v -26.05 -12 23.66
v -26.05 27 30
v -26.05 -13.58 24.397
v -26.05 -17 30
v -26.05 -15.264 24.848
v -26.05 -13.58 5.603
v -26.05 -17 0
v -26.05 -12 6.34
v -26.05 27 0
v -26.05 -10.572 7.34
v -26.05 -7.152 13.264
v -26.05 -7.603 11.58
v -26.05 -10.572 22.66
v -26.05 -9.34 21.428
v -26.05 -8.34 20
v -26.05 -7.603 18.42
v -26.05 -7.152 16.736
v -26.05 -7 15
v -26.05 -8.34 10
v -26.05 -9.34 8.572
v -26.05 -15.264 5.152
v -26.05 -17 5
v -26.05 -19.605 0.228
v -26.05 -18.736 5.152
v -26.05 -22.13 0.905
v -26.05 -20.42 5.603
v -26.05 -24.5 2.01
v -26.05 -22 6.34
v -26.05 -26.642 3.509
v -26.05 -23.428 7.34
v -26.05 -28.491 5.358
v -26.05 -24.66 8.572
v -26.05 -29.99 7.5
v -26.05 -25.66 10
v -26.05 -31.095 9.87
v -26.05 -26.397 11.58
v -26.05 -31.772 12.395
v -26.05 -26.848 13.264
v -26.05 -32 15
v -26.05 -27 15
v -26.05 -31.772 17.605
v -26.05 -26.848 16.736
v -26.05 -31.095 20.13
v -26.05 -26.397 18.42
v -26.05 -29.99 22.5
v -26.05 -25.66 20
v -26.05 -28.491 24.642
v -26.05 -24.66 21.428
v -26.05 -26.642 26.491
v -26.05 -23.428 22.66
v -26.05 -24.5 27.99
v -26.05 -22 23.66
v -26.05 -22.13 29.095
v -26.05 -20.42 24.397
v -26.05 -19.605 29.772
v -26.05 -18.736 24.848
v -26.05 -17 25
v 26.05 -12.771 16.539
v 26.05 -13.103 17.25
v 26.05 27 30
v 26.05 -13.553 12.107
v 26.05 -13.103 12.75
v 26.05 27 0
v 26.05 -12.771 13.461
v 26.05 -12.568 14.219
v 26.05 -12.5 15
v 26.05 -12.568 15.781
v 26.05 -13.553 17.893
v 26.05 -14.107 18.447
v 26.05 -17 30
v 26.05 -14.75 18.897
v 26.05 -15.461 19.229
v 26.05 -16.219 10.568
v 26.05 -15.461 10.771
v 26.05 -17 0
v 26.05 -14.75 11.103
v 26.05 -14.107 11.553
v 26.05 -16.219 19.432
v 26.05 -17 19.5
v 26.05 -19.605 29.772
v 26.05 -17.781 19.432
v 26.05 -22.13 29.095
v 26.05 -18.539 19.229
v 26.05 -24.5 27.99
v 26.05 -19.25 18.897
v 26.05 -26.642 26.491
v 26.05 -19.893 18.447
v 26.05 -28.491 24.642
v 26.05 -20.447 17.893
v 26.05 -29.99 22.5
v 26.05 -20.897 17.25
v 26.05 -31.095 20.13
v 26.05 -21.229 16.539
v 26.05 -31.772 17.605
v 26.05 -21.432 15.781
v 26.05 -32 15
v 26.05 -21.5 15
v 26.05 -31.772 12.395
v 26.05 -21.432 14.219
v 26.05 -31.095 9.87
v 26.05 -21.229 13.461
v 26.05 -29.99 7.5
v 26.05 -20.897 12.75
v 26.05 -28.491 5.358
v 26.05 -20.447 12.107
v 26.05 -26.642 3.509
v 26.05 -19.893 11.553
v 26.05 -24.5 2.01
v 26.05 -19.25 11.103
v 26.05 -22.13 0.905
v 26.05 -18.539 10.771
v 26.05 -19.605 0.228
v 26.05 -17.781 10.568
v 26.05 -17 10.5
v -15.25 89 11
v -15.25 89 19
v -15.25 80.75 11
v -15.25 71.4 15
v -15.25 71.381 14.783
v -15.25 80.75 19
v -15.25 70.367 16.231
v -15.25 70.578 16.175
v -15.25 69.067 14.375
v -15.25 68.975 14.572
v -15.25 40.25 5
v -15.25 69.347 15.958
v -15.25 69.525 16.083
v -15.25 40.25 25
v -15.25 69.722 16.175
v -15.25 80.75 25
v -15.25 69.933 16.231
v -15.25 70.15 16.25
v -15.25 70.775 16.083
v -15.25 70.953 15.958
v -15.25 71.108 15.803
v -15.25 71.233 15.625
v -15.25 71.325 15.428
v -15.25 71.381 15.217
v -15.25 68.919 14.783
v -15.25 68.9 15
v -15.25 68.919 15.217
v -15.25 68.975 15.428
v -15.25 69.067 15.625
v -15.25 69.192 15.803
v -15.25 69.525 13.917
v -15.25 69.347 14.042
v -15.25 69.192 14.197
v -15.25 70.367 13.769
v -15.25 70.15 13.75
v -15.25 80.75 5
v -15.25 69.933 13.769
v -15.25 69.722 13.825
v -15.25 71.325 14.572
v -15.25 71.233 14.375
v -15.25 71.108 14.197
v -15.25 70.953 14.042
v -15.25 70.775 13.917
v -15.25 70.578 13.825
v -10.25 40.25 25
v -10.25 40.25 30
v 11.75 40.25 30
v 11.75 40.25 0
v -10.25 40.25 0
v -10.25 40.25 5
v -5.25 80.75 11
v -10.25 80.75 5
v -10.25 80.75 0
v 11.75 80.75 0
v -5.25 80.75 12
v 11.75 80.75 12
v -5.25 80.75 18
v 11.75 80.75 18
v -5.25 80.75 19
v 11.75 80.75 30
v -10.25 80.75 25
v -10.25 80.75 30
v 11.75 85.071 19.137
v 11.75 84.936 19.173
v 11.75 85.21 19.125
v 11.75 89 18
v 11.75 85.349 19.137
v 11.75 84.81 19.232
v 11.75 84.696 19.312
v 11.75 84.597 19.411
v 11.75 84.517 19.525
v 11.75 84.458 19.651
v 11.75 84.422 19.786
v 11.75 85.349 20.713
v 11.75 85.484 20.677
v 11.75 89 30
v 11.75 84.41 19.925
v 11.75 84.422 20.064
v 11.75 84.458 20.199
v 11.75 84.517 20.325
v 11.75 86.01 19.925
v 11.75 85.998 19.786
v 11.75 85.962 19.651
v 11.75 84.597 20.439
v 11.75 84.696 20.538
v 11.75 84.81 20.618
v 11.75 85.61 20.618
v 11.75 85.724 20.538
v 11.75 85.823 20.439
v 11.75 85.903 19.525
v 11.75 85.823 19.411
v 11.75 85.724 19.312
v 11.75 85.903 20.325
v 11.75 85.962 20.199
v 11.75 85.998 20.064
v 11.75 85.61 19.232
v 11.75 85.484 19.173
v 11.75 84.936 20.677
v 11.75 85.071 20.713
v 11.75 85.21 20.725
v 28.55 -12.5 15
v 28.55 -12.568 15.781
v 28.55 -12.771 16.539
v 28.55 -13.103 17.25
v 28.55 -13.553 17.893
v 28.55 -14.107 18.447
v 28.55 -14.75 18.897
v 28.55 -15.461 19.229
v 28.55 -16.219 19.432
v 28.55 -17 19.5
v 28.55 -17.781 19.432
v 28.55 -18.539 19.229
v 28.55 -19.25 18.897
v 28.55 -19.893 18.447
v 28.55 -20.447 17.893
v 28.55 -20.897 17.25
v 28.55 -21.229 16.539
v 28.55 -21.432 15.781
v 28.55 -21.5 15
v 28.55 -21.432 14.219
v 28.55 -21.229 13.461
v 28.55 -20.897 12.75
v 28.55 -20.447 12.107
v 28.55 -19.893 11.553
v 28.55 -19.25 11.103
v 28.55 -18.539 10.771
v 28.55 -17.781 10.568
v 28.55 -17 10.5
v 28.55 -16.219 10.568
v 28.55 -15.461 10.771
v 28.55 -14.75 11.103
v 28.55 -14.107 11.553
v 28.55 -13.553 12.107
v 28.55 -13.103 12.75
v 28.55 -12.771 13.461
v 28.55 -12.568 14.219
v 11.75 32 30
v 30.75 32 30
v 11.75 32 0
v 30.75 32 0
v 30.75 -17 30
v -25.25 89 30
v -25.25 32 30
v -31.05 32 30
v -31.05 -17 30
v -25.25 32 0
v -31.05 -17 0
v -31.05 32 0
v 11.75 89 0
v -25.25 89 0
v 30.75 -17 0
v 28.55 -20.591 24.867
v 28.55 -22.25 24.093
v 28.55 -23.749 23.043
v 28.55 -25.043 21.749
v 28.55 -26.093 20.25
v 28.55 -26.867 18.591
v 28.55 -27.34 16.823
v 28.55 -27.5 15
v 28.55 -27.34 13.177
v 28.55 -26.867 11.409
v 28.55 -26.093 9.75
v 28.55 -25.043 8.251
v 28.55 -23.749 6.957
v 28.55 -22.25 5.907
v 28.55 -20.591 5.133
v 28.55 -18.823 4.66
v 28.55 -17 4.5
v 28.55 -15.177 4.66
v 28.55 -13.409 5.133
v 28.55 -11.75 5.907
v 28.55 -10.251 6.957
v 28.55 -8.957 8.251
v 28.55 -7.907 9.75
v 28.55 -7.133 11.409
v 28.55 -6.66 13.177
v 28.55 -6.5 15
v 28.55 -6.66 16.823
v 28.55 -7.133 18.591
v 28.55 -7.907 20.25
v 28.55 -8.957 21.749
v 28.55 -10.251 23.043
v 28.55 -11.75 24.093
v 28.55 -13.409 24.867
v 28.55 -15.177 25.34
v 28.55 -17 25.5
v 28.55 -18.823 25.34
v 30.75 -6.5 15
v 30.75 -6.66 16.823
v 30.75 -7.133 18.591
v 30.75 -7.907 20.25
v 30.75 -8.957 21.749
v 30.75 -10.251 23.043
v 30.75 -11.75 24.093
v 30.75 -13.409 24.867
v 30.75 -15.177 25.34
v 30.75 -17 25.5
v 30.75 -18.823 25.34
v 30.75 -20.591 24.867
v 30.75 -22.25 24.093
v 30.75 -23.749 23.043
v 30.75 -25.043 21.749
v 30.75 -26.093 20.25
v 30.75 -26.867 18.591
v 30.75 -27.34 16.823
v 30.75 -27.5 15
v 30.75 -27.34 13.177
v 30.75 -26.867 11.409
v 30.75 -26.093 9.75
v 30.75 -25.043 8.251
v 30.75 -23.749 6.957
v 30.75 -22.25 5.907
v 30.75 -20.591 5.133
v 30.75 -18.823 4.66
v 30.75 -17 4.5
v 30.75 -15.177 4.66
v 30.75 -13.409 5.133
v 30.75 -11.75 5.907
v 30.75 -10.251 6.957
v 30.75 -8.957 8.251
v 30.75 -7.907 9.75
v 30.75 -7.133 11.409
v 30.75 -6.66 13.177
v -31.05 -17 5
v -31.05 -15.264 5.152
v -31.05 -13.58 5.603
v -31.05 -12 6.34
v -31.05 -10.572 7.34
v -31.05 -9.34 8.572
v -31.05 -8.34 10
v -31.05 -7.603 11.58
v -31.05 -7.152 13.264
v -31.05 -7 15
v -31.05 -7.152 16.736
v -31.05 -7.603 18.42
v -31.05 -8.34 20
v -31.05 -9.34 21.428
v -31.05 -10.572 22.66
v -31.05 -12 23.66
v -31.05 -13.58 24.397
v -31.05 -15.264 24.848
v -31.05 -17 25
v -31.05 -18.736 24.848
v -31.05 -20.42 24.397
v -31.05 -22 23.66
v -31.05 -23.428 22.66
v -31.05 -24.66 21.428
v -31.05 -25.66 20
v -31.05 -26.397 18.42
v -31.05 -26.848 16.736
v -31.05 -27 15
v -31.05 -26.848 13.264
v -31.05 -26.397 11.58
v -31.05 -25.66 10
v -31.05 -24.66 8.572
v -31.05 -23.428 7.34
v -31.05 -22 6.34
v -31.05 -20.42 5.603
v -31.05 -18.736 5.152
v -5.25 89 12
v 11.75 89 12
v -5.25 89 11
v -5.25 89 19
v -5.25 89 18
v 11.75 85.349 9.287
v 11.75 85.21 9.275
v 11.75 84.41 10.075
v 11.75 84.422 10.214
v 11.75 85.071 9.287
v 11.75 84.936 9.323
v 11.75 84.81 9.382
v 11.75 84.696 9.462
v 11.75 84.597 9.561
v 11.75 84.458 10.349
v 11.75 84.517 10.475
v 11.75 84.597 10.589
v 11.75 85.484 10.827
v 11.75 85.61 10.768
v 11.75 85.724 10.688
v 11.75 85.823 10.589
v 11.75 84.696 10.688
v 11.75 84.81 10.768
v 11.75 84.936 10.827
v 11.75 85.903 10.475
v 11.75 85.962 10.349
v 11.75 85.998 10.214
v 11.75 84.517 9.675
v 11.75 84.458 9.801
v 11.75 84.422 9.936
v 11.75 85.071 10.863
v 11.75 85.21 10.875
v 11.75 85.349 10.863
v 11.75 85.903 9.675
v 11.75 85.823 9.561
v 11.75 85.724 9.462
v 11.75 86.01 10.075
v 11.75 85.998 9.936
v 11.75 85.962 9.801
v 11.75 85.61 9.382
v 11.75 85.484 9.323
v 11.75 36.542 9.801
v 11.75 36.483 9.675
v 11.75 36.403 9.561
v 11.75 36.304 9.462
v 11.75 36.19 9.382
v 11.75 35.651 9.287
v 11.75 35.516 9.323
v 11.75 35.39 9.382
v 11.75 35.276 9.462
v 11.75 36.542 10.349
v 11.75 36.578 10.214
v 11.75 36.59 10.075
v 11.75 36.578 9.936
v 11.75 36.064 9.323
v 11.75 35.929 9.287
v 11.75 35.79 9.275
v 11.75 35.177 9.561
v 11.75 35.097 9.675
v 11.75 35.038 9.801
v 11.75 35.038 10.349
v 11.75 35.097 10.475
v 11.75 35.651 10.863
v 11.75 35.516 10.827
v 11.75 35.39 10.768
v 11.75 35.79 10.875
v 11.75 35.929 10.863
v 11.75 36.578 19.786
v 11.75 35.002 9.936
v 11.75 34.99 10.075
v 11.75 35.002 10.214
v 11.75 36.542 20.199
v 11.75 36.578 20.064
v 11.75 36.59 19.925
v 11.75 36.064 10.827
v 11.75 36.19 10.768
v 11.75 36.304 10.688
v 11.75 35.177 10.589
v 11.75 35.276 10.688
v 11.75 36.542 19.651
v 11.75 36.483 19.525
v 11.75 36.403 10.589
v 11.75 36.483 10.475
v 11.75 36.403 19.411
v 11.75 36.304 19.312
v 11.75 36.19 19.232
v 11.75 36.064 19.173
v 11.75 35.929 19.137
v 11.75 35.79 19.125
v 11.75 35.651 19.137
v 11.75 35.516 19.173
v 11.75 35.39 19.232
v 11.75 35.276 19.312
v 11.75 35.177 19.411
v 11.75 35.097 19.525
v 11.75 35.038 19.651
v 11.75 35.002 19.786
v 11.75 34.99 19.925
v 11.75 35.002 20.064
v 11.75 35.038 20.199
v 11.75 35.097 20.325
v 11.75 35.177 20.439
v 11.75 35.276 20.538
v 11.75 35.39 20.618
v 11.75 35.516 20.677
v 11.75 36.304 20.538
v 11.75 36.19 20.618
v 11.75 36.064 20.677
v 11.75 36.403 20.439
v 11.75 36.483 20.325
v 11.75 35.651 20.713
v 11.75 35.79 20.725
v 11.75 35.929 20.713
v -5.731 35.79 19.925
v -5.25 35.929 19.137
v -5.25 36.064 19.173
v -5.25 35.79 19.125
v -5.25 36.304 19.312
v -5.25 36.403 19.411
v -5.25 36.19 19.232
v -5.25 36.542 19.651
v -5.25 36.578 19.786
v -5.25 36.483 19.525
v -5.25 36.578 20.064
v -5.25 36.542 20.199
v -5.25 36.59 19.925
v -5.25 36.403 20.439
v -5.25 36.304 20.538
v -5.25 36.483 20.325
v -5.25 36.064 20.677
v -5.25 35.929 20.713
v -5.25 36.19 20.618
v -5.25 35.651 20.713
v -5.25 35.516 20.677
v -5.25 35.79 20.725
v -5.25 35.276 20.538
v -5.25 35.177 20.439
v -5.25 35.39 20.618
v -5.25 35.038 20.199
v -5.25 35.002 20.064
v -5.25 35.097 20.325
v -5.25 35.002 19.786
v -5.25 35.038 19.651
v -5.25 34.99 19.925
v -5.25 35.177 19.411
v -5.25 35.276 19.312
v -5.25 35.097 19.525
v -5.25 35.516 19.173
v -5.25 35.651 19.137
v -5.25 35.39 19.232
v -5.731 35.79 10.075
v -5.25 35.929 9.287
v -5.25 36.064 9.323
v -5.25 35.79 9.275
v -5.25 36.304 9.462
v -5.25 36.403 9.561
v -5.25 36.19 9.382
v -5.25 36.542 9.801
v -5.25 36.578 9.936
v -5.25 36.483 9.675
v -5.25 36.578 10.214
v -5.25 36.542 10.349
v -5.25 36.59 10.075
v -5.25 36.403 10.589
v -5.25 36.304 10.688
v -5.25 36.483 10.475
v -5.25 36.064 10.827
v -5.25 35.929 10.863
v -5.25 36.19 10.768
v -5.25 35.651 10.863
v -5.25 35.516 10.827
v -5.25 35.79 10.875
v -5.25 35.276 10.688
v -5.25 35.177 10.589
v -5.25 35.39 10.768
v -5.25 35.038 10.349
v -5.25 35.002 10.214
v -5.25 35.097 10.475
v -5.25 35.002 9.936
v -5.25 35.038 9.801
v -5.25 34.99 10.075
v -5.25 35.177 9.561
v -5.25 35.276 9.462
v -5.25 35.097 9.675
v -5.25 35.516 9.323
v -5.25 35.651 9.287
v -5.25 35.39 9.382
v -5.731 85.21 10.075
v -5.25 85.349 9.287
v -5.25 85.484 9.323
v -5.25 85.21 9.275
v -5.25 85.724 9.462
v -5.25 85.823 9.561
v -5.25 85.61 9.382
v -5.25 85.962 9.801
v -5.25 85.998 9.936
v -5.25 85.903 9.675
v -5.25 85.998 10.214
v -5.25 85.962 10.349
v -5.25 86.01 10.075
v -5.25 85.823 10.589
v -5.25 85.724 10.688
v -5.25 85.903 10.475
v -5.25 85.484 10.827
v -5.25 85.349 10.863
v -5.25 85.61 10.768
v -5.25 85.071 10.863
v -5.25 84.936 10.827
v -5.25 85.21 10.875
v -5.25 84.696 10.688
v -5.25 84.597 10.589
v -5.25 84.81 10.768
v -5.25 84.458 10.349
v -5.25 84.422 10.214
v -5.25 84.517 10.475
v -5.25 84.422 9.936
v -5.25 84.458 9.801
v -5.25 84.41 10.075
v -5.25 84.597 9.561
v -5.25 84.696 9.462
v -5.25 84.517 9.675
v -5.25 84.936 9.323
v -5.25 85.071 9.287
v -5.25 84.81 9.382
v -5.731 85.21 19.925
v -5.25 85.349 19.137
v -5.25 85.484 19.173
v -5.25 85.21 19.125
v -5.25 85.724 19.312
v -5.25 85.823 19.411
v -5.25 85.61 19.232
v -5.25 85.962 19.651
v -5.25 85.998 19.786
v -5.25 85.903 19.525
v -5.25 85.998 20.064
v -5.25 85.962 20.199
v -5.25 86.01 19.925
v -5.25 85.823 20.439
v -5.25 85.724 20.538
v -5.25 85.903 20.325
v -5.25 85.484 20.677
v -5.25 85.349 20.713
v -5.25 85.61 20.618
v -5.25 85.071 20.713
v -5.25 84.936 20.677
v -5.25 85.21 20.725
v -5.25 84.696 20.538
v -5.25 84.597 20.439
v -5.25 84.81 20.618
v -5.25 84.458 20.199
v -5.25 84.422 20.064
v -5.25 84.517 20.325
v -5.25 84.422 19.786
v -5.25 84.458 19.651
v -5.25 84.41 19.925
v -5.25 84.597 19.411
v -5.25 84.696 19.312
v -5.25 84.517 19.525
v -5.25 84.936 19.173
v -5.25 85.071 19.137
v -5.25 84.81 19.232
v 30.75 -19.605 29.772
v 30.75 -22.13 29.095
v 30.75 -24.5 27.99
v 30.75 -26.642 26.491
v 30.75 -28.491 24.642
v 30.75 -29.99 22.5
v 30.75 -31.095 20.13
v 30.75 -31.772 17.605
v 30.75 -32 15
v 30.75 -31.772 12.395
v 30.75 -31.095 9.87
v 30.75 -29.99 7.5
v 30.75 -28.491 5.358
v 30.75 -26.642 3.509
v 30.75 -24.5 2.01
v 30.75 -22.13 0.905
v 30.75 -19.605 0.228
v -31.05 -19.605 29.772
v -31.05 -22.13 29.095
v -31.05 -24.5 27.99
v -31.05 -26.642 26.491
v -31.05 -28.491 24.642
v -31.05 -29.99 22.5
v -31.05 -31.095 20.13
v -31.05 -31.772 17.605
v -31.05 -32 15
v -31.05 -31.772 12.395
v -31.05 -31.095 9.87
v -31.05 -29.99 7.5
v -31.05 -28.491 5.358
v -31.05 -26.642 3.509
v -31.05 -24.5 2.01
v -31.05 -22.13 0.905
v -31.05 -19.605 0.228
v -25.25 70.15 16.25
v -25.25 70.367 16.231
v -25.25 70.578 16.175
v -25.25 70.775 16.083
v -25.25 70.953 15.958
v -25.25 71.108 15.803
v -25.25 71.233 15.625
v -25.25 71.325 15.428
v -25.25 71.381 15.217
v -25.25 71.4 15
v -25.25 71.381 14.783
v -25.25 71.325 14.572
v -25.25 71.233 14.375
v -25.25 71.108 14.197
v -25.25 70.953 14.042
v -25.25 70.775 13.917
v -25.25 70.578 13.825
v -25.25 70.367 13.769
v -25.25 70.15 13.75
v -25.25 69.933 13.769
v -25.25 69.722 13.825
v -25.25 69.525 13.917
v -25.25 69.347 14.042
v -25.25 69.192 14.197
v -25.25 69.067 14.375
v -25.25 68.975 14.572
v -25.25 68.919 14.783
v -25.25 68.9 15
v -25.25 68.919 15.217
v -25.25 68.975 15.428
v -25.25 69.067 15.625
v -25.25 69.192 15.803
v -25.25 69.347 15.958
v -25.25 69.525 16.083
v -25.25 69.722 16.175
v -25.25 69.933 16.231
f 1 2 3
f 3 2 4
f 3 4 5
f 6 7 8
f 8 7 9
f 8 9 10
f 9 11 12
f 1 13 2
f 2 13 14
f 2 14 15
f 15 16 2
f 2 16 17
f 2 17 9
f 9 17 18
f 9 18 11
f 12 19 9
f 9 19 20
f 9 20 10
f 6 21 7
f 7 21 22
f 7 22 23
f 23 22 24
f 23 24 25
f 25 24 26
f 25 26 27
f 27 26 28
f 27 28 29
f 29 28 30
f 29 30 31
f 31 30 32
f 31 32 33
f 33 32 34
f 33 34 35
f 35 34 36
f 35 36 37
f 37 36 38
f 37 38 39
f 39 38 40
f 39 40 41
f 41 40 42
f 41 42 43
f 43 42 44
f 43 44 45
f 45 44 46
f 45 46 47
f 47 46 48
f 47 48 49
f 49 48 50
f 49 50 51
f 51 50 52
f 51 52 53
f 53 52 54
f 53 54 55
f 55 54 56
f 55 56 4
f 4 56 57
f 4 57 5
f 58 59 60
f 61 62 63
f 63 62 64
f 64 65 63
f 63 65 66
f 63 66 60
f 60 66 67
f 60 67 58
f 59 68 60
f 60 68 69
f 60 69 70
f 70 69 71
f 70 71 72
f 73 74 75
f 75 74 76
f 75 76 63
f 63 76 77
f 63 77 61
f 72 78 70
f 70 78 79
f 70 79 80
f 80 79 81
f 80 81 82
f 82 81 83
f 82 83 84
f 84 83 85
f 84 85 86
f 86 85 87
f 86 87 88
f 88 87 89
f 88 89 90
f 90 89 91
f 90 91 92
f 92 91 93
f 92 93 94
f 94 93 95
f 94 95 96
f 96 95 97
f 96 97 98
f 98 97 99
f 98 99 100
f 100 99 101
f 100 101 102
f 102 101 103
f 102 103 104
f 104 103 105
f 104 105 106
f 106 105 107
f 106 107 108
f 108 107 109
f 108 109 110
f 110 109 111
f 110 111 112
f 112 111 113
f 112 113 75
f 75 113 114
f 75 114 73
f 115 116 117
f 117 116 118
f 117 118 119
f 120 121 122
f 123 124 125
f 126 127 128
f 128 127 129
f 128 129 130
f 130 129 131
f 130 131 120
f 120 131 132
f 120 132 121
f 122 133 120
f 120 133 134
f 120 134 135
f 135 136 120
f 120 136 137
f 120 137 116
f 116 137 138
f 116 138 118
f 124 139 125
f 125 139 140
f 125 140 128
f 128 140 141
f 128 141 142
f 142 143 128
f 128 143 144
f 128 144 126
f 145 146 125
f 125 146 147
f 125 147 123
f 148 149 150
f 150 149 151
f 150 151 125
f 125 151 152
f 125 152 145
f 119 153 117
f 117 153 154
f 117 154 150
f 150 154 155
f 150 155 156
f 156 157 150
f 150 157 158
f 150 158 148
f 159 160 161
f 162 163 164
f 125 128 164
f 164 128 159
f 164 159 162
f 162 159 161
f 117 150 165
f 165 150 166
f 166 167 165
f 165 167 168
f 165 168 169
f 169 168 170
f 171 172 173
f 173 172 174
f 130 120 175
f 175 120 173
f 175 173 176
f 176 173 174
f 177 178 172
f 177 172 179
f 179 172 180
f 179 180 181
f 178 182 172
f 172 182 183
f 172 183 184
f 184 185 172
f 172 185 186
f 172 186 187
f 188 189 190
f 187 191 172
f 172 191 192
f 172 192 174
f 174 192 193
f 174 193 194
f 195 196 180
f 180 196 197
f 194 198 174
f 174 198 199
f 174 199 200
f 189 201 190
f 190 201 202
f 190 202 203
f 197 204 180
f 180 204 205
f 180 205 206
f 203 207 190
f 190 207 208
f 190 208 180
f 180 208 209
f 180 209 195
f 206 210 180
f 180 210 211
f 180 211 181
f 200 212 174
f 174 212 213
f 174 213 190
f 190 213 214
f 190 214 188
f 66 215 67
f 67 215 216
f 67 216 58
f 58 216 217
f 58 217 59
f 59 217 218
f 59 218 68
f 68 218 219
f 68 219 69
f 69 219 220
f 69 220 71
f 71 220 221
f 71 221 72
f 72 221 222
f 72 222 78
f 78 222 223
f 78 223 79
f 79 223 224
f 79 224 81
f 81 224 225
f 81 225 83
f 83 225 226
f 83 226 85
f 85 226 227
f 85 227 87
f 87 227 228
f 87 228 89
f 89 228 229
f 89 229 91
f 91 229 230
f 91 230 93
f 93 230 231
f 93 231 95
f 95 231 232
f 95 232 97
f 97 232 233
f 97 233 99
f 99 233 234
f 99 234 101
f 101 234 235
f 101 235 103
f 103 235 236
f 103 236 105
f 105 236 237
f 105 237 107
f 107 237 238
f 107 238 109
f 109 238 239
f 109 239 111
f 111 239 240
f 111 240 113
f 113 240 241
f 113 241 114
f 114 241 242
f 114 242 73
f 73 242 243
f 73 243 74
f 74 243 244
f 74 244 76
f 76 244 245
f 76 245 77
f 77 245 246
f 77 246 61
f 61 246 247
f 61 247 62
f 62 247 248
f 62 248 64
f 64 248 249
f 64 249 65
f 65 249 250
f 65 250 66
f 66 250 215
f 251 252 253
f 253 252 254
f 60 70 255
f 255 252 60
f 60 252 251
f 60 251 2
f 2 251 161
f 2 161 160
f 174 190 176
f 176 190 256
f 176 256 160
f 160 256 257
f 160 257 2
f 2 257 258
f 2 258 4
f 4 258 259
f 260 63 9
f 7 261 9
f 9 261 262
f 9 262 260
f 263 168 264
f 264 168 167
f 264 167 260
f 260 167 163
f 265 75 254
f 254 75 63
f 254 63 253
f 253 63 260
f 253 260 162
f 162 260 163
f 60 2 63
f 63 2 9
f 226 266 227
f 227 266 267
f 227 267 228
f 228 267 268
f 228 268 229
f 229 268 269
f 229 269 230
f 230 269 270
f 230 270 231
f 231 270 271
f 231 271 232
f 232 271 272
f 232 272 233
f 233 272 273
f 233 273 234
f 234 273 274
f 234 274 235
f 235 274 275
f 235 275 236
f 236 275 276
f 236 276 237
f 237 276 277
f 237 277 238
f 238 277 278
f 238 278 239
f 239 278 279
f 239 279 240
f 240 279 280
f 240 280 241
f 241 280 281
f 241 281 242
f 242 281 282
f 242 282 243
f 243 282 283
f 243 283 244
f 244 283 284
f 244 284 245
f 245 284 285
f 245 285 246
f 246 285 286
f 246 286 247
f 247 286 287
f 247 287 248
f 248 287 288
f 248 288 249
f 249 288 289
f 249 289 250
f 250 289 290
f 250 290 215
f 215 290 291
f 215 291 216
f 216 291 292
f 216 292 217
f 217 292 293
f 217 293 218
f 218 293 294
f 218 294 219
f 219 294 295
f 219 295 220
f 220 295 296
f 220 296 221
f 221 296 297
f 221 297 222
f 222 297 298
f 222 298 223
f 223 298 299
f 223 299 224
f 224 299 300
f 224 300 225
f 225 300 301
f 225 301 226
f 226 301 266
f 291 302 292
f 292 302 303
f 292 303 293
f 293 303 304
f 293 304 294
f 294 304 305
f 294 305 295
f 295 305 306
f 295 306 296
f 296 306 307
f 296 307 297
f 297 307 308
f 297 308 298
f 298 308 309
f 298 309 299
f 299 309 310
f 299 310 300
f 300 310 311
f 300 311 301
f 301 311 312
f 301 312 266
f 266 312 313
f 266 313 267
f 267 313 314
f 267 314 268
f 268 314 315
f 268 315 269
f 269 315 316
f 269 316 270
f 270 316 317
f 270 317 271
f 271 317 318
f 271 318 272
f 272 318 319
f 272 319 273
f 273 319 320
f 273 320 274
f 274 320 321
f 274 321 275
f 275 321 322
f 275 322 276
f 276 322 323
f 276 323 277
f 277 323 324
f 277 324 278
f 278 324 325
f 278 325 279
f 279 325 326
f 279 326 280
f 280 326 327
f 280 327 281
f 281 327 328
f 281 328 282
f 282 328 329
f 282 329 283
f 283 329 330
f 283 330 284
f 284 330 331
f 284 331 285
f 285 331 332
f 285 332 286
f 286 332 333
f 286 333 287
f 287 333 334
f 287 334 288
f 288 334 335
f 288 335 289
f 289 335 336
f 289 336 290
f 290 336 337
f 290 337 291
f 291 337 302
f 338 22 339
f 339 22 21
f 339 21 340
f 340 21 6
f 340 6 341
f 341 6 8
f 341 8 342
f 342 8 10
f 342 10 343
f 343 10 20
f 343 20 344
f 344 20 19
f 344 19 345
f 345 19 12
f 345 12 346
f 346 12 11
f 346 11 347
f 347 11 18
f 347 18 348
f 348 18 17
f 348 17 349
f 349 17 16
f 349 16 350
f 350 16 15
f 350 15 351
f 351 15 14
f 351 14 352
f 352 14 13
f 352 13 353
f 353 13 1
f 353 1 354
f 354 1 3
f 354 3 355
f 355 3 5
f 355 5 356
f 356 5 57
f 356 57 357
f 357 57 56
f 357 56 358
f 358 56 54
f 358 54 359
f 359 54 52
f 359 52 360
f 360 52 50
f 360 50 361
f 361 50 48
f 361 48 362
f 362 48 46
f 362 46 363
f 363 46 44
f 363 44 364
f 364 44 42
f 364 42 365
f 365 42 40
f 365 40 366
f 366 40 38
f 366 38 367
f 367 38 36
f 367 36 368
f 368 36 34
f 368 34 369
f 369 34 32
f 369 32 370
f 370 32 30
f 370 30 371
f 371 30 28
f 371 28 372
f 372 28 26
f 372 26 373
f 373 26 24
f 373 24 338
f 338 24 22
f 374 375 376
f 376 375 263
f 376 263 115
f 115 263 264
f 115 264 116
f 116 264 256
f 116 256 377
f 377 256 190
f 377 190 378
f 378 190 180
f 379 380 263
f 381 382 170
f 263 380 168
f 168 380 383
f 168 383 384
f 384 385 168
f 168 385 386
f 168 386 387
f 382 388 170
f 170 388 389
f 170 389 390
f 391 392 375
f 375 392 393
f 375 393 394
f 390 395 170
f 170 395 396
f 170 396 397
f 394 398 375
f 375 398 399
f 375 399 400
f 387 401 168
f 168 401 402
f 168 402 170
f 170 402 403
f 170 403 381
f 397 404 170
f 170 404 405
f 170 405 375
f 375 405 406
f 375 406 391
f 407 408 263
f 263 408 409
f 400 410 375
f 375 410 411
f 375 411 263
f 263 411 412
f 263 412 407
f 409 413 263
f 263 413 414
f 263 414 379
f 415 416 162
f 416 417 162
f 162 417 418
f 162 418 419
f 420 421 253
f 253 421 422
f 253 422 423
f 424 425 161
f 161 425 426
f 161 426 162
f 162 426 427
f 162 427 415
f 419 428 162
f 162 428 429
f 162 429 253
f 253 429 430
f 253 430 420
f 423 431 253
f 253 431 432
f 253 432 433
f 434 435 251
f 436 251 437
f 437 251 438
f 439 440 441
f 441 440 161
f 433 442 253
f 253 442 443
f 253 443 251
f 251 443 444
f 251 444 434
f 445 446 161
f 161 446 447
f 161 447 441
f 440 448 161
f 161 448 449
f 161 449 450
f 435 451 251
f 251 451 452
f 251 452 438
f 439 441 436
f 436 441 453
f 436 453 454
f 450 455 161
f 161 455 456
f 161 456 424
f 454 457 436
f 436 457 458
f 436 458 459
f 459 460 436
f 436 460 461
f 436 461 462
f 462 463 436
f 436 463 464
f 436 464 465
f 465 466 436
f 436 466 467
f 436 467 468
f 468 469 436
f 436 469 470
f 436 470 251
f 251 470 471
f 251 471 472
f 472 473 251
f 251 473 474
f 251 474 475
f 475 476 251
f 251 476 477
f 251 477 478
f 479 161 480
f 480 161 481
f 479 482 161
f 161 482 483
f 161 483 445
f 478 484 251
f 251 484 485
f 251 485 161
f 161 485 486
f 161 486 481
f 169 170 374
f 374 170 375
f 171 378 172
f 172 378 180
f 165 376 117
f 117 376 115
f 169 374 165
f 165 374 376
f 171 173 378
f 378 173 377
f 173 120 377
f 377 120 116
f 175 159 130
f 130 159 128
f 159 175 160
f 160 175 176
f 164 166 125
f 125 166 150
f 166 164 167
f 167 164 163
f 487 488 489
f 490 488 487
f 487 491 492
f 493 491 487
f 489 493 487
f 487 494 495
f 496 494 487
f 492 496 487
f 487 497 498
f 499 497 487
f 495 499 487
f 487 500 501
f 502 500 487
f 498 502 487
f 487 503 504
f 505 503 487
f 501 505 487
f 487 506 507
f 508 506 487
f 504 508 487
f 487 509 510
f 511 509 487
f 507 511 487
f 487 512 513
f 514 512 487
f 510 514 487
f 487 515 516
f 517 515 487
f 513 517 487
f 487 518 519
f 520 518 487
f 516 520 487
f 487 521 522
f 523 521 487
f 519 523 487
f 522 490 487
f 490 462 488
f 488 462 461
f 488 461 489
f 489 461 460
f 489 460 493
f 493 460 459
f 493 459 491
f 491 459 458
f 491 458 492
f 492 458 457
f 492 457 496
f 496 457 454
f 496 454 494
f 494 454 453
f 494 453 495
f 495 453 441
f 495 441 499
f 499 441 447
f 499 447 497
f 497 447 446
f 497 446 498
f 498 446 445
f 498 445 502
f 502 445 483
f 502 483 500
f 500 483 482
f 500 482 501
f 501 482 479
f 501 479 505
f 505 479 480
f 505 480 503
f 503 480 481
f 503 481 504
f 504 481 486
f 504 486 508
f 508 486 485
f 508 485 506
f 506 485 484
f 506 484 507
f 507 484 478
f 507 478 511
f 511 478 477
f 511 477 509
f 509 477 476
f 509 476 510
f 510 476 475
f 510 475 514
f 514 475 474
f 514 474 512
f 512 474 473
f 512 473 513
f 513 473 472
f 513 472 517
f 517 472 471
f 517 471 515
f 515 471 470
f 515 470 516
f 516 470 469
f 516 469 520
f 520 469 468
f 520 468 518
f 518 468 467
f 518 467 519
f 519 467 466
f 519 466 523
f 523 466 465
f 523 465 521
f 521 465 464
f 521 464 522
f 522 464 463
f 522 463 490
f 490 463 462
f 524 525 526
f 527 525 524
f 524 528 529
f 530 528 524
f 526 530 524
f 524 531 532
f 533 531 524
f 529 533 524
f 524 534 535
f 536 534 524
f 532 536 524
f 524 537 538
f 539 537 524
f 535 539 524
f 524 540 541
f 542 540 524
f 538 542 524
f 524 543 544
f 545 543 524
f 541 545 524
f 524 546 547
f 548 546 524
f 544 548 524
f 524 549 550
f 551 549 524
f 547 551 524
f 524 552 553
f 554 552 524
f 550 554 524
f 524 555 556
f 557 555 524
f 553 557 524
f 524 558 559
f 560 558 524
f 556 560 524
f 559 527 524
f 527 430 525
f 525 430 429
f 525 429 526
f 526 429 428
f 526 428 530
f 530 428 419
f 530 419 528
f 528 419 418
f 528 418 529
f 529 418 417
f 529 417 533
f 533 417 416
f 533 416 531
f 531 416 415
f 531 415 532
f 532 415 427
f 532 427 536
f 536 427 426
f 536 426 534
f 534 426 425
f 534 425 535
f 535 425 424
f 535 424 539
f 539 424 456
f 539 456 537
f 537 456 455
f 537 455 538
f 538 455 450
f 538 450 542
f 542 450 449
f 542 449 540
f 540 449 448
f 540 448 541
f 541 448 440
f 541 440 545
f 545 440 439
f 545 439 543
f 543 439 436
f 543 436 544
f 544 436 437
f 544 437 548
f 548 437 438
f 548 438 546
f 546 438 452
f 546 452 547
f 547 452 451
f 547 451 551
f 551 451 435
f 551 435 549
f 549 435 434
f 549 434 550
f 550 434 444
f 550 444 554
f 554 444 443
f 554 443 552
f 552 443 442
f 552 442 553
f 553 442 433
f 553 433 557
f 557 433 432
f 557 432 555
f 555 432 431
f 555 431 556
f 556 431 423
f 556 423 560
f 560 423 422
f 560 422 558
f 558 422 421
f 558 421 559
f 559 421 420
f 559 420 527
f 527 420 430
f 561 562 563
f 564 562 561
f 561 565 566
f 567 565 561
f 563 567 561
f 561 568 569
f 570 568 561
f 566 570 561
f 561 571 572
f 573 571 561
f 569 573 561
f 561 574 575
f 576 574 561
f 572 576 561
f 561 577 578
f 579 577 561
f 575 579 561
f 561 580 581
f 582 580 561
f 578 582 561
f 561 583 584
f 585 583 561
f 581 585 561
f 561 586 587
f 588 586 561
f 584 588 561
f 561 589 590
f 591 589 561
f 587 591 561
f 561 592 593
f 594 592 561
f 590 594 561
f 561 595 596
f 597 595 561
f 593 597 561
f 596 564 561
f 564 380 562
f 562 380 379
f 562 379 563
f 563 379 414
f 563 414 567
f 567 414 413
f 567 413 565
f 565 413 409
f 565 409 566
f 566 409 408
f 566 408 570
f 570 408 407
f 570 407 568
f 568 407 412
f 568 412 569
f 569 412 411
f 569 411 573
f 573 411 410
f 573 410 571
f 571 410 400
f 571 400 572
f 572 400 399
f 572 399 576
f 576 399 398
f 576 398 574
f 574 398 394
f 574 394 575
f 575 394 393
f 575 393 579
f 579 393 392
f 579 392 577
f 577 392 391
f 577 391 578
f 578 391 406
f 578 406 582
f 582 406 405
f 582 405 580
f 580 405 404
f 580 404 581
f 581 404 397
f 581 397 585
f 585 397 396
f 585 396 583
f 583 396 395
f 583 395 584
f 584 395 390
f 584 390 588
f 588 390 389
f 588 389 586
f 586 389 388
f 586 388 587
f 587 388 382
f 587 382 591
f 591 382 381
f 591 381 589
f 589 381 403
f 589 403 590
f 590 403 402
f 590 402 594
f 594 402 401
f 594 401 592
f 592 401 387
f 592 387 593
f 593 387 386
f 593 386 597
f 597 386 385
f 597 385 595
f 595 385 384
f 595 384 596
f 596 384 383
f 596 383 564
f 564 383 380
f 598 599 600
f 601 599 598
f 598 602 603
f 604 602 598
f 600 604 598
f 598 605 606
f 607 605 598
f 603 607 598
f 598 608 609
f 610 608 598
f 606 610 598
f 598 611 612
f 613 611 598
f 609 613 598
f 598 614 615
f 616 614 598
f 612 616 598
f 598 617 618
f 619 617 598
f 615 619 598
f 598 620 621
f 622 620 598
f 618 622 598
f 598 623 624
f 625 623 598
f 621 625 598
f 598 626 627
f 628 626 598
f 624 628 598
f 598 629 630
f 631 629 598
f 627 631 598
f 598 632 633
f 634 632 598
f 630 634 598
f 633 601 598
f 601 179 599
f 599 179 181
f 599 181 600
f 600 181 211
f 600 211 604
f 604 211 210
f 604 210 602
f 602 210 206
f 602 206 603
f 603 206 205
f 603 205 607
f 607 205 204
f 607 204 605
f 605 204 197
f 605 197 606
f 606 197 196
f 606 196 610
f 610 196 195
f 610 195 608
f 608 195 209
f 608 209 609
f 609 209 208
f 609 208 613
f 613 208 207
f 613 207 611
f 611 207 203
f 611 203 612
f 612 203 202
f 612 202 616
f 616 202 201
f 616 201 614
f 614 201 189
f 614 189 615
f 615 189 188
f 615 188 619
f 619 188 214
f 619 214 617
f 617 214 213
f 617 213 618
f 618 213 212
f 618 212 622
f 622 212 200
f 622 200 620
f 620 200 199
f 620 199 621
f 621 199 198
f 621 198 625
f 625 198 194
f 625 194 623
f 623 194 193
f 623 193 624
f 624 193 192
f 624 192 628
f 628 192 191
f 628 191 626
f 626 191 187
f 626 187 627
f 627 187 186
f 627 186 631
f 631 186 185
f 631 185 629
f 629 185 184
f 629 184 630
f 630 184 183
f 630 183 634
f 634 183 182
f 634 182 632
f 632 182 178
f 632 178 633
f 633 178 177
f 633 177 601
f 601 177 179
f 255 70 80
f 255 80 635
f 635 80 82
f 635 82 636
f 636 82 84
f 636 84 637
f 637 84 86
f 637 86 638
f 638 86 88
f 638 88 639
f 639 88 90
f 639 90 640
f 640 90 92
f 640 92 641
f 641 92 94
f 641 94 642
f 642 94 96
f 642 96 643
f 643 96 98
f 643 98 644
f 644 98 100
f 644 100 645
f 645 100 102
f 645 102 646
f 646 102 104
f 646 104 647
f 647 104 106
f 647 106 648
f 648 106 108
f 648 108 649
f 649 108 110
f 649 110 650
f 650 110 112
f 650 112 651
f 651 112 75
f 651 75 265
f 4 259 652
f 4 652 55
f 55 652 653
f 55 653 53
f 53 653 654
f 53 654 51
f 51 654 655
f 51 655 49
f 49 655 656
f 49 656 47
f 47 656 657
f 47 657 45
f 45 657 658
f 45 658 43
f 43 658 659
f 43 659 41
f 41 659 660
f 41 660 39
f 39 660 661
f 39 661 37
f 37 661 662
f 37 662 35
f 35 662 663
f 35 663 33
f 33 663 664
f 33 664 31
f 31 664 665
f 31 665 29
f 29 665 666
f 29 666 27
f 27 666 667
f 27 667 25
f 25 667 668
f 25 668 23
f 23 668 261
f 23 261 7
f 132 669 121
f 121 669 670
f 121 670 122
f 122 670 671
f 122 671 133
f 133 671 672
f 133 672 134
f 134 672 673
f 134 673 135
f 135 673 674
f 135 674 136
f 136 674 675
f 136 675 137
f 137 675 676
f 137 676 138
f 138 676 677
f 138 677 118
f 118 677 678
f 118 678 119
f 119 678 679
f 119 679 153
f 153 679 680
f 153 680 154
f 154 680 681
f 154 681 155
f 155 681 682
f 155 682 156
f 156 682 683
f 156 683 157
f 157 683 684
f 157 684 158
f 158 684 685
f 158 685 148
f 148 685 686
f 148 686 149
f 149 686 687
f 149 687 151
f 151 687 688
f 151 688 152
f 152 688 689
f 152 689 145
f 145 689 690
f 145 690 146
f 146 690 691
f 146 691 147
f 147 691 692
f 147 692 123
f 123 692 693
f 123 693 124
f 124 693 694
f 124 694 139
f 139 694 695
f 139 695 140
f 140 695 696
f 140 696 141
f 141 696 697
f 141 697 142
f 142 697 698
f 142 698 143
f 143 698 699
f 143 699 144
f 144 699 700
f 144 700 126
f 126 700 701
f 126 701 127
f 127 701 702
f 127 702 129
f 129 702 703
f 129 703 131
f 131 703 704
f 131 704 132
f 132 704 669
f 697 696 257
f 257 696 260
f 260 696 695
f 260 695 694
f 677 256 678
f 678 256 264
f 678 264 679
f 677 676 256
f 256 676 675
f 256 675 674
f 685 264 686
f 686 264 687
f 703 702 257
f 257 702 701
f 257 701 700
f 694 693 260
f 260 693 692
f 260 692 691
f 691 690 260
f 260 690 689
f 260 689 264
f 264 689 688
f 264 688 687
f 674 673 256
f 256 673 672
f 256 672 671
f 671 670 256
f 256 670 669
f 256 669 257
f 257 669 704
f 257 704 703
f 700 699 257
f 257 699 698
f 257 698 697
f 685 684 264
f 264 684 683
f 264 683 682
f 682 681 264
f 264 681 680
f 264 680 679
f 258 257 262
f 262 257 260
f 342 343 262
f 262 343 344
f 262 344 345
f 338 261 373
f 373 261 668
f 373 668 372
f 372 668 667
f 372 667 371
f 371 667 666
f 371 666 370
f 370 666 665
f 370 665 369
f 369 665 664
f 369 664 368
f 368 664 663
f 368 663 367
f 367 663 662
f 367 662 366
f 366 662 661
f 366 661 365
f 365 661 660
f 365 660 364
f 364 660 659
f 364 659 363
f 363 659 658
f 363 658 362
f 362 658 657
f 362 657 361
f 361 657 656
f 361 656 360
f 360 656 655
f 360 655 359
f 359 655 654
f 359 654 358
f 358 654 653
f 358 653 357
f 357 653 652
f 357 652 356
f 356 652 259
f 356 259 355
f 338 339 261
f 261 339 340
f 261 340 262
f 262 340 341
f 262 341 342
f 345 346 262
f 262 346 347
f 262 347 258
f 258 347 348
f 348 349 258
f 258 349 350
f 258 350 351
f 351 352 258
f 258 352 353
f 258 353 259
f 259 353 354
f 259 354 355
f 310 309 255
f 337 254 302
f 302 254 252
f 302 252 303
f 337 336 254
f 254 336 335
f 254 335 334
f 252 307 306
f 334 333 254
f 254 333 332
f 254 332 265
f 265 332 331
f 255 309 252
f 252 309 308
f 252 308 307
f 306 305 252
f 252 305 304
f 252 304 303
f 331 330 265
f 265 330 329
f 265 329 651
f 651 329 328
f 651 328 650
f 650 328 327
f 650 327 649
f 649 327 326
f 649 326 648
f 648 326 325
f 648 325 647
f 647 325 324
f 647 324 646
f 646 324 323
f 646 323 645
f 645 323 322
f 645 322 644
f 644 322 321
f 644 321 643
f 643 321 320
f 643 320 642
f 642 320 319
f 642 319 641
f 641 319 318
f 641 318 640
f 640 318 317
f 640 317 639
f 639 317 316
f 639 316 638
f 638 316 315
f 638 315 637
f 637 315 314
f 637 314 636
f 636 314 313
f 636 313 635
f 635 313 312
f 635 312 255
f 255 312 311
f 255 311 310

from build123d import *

# Parameters (mm, degrees)
ESQUISSE1_W               = 60.5
ESQUISSE1_H               = 64
BOSS_EXTRU_1_DEPTH        = 30
ESQUISSE2_R               = 4.5
ENL_V_MAT_EXTRU_1_DEPTH   = 32
ENL_V_MAT_EXTRU_2_REACH   = 55.283
ESQUISSE4_W               = 52.1
ESQUISSE4_H               = 83.557669167
ESQUISSE5_R               = 10.5
ENL_V_MAT_EXTRU_3_DEPTH   = 1.7
ESQUISSE6_R               = 10
ENL_V_MAT_EXTRU_4_DEPTH   = 4.2
ESQUISSE7_W               = 47
ESQUISSE7_H               = 57
BOSS_EXTRU_2_DEPTH        = 30
ENL_V_MAT_EXTRU_5_DEPTH   = 30
ENL_V_MAT_EXTRU_6_DEPTH   = 8.25
ESQUISSE11_W              = 5
ESQUISSE11_H              = 40.5
BOSS_EXTRU_3_DEPTH        = 5
ESQUISSE12_R              = 0.5
ENL_V_MAT_EXTRU_7_DEPTH   = 15
TROU_TARAUD_M2X0_42_D     = 1.6
TROU_TARAUD_M2X0_42_DEPTH = 17
TROU_TARAUD_M2X0_42_TIP   = 0.480688495
ENL_V_MAT_EXTRU_8_REACH   = 113.72
TROU_TARAUD_M3X0_54_D     = 2.5
TROU_TARAUD_M3X0_54_DEPTH = 17.5
TROU_TARAUD_M3X0_54_TIP   = 0.751075774
ENL_V_MAT_EXTRU_9_REACH   = 100.671
ESQUISSE26_W              = 5
ESQUISSE26_H              = 64.513244551
BOSS_EXTRU_5_START        = 0.8
BOSS_EXTRU_5_DEPTH        = 0.8
BOSS_EXTRU_6_DEPTH        = 0.5
ESQUISSE30_R              = 10
ENL_V_MAT_EXTRU_10_DEPTH  = 20.5
ENL_V_START               = -20.5
ESQUISSE32_R              = 10.5
ENL_V_MAT_EXTRU_13_DEPTH  = 20.5


with BuildPart() as part:
    # Esquisse1 → Boss.-Extru.1 (new body)
    with BuildSketch(Plane.XY):
        Rectangle(ESQUISSE1_W, ESQUISSE1_H)
    extrude(amount=BOSS_EXTRU_1_DEPTH)

    # Esquisse2 → Enlèv. mat.-Extru.1 (cut)
    with BuildSketch(Plane(origin=(30.25, 0, 0), x_dir=(0, 0, -1), z_dir=(1, 0, 0))):
        with Locations(Location((-15, -17, 0), (0, 0, 90))):
            Circle(ESQUISSE2_R)
    extrude(amount=-ENL_V_MAT_EXTRU_1_DEPTH, mode=Mode.SUBTRACT)

    # Enlèv. mat.-Extru.2: up to this face of the body (flat: up to its plane)
    enl_v_mat_extru_2_end = Plane(part.part.faces().sort_by_distance((0, 0, 0))[0])
    # Esquisse4 → Enlèv. mat.-Extru.2 (cut, up to the picked face)
    with BuildSketch(Plane.XY.offset(30), mode=Mode.PRIVATE) as enl_v_mat_extru_2_sk1:
        with Locations((0, -14.778834584)):
            Rectangle(ESQUISSE4_W, ESQUISSE4_H)
    enl_v_mat_extru_2_tool1 = split(extrude(enl_v_mat_extru_2_sk1.sketch, amount=-ENL_V_MAT_EXTRU_2_REACH, mode=Mode.PRIVATE), bisect_by=enl_v_mat_extru_2_end, keep=Keep.BOTH, mode=Mode.PRIVATE)
    add(enl_v_mat_extru_2_tool1.solids().sort_by(Axis((0, -14.778835, 30), (0, 0, -1)))[0], mode=Mode.SUBTRACT)

    # Esquisse5 → Enlèv. mat.-Extru.3 (cut)
    with BuildSketch(Plane(origin=(30.25, 0, 0), x_dir=(0, 0, -1), z_dir=(1, 0, 0))):
        with Locations(Location((-15, -17, 0), (0, 0, 90))):
            Circle(ESQUISSE5_R)
    extrude(amount=-ENL_V_MAT_EXTRU_3_DEPTH, mode=Mode.SUBTRACT)

    # Esquisse6 → Enlèv. mat.-Extru.4 (cut)
    with BuildSketch(Plane(origin=(-26.05, 0, 0), x_dir=(0, 0, -1), z_dir=(1, 0, 0))):
        with Locations((-15, -17)):
            Circle(ESQUISSE6_R)
    extrude(amount=-ENL_V_MAT_EXTRU_4_DEPTH, mode=Mode.SUBTRACT)

    # Esquisse7 → Boss.-Extru.2 (add)
    with BuildSketch(Plane.XY.offset(30)):
        with Locations((-6.75, 60.5)):
            Rectangle(ESQUISSE7_W, ESQUISSE7_H)
    extrude(amount=-BOSS_EXTRU_2_DEPTH)

    # Esquisse8 → Enlèv. mat.-Extru.5 (cut)
    with BuildSketch(Plane.XY.offset(30)):
        Polygon((-15.25, 80.75), (11.75, 80.75), (11.75, 98.556441221), (21.75, 98.556441221), (21.75, 32), (11.75, 32), (11.75, 40.25), (-15.25, 40.25), align=None)
    extrude(amount=-ENL_V_MAT_EXTRU_5_DEPTH, mode=Mode.SUBTRACT)

    # Esquisse10 → Enlèv. mat.-Extru.6 (cut)
    with BuildSketch(Plane.XZ.offset(-80.75)):
        Polygon((-5.25, 11), (-5.25, 12), (34.75, 12), (34.75, 18), (-5.25, 18), (-5.25, 19), (-15.25, 19), (-15.25, 11), align=None)
    extrude(amount=-ENL_V_MAT_EXTRU_6_DEPTH, mode=Mode.SUBTRACT)

    # Esquisse11 → Boss.-Extru.3 (add)
    with BuildSketch(Plane(origin=(-15.25, 0, 0), x_dir=(0, 0, -1), z_dir=(1, 0, 0))):
        with Locations((-27.5, 60.5)):
            Rectangle(ESQUISSE11_W, ESQUISSE11_H)
        with Locations((-2.5, 60.5)):
            Rectangle(ESQUISSE11_W, ESQUISSE11_H)
    extrude(amount=BOSS_EXTRU_3_DEPTH)

    # Esquisse12 → Enlèv. mat.-Extru.7 (cut)
    with BuildSketch(Plane(origin=(11.75, 0, 0), x_dir=(0, 0, -1), z_dir=(1, 0, 0))):
        with Locations((-19.925, 85.21)):
            Circle(ESQUISSE12_R)
        with Locations(Location((-10.075, 85.21, 0), (0, 0, 180))):
            Circle(ESQUISSE12_R)
        with Locations((-10.075, 35.79)):
            Circle(ESQUISSE12_R)
        with Locations(Location((-19.925, 35.79, 0), (0, 0, 180))):
            Circle(ESQUISSE12_R)
    extrude(amount=-ENL_V_MAT_EXTRU_7_DEPTH, mode=Mode.SUBTRACT)

    # Trou taraudé M2x0.42
    with Locations(Plane(origin=(11.75, 85.21, 19.925), x_dir=(0, 0, 1), z_dir=(1, 0, 0))):
        with Locations((0, 0), (-9.85, 0), (-9.85, 49.42), (0, 49.42)):
            Hole(TROU_TARAUD_M2X0_42_D / 2, depth=TROU_TARAUD_M2X0_42_DEPTH)
            with Locations((0, 0, -(TROU_TARAUD_M2X0_42_DEPTH + TROU_TARAUD_M2X0_42_TIP / 2))):  # 118° drill point
                Cone(0, TROU_TARAUD_M2X0_42_D / 2, TROU_TARAUD_M2X0_42_TIP, mode=Mode.SUBTRACT)

    # Enlèv. mat.-Extru.8: up to this face of the body (flat: up to its plane)
    enl_v_mat_extru_8_end = Plane(part.part.faces().sort_by_distance((30.25, 3.741727612, 15))[0])
    # Esquisse15 → Enlèv. mat.-Extru.8 (cut, up to the picked face)
    with BuildSketch(Plane.ZY.offset(30.25), mode=Mode.PRIVATE) as enl_v_mat_extru_8_sk1:
        with BuildLine():
            Line((40, -17), (30, -17))
            ThreePointArc((30, -17), (15, -32), (0, -17))
            Line((0, -17), (-10, -17))
            ThreePointArc((-10, -17), (15, -42), (40, -17))
        make_face()
    enl_v_mat_extru_8_tool1 = split(extrude(enl_v_mat_extru_8_sk1.sketch, amount=-ENL_V_MAT_EXTRU_8_REACH, mode=Mode.PRIVATE), bisect_by=enl_v_mat_extru_8_end, keep=Keep.BOTH, mode=Mode.PRIVATE)
    add(enl_v_mat_extru_8_tool1.solids().sort_by(Axis((-30.25, -17.559017, -5), (1, 0, 0)))[0], mode=Mode.SUBTRACT)

    # Trou taraudé M3x0.54
    with Locations(Plane(origin=(-30.25, 70.15, 15), x_dir=(0, -1, 0), z_dir=(-1, 0, 0))):
        with Locations((0, 0)):
            Hole(TROU_TARAUD_M3X0_54_D / 2, depth=TROU_TARAUD_M3X0_54_DEPTH)
            with Locations((0, 0, -(TROU_TARAUD_M3X0_54_DEPTH + TROU_TARAUD_M3X0_54_TIP / 2))):  # 118° drill point
                Cone(0, TROU_TARAUD_M3X0_54_D / 2, TROU_TARAUD_M3X0_54_TIP, mode=Mode.SUBTRACT)

    # Enlèv. mat.-Extru.9: up to this face of the body (flat: up to its plane)
    enl_v_mat_extru_9_end = Plane(part.part.faces().sort_by_distance((-10.488138476, 46.757965151, 0))[0])
    # Esquisse26 → Enlèv. mat.-Extru.9 (cut, up to the picked face)
    with BuildSketch(Plane.XY.offset(30), mode=Mode.PRIVATE) as enl_v_mat_extru_9_sk1:
        with Locations((-27.75, 64.256622276)):
            Rectangle(ESQUISSE26_W, ESQUISSE26_H)
    enl_v_mat_extru_9_tool1 = split(extrude(enl_v_mat_extru_9_sk1.sketch, amount=-ENL_V_MAT_EXTRU_9_REACH, mode=Mode.PRIVATE), bisect_by=enl_v_mat_extru_9_end, keep=Keep.BOTH, mode=Mode.PRIVATE)
    add(enl_v_mat_extru_9_tool1.solids().sort_by(Axis((-27.75, 64.256622, 30), (0, 0, -1)))[0], mode=Mode.SUBTRACT)

    # Esquisse27 → Boss.-Extru.5 (add)
    with BuildSketch(Plane.ZY.offset(30.25).offset(BOSS_EXTRU_5_START)):
        with BuildLine():
            Line((30, -17), (30, 32))
            Line((30, 32), (0, 32))
            Line((0, 32), (0, -17))
            ThreePointArc((0, -17), (15, -32), (30, -17))
        make_face()
    extrude(amount=-BOSS_EXTRU_5_DEPTH)

    # Esquisse28 → Boss.-Extru.6 (add)
    with BuildSketch(Plane(origin=(30.25, 0, 0), x_dir=(0, 0, -1), z_dir=(1, 0, 0))):
        with BuildLine():
            Line((-30, 32), (-30, -17))
            ThreePointArc((-30, -17), (-15, -32), (0, -17))
            Line((0, -17), (0, 32))
            Line((0, 32), (-30, 32))
        make_face()
    extrude(amount=BOSS_EXTRU_6_DEPTH)

    # Esquisse30 → Enlèv. mat.-Extru.10 (cut)
    with BuildSketch(Plane(origin=(-30.25, 0, 0), x_dir=(0, 0, -1), z_dir=(1, 0, 0))):
        with Locations((-15, -17)):
            Circle(ESQUISSE30_R)
    extrude(amount=-ENL_V_MAT_EXTRU_10_DEPTH, mode=Mode.SUBTRACT)

    # Esquisse32 → Enlèv. mat.-Extru.13 (cut)
    with BuildSketch(Plane.ZY.offset(-30.25).offset(ENL_V_START)):
        with Locations(Location((15, -17, 0), (0, 0, 90))):
            Circle(ESQUISSE32_R)
    extrude(amount=ENL_V_MAT_EXTRU_13_DEPTH, mode=Mode.SUBTRACT)


solid = part.part
